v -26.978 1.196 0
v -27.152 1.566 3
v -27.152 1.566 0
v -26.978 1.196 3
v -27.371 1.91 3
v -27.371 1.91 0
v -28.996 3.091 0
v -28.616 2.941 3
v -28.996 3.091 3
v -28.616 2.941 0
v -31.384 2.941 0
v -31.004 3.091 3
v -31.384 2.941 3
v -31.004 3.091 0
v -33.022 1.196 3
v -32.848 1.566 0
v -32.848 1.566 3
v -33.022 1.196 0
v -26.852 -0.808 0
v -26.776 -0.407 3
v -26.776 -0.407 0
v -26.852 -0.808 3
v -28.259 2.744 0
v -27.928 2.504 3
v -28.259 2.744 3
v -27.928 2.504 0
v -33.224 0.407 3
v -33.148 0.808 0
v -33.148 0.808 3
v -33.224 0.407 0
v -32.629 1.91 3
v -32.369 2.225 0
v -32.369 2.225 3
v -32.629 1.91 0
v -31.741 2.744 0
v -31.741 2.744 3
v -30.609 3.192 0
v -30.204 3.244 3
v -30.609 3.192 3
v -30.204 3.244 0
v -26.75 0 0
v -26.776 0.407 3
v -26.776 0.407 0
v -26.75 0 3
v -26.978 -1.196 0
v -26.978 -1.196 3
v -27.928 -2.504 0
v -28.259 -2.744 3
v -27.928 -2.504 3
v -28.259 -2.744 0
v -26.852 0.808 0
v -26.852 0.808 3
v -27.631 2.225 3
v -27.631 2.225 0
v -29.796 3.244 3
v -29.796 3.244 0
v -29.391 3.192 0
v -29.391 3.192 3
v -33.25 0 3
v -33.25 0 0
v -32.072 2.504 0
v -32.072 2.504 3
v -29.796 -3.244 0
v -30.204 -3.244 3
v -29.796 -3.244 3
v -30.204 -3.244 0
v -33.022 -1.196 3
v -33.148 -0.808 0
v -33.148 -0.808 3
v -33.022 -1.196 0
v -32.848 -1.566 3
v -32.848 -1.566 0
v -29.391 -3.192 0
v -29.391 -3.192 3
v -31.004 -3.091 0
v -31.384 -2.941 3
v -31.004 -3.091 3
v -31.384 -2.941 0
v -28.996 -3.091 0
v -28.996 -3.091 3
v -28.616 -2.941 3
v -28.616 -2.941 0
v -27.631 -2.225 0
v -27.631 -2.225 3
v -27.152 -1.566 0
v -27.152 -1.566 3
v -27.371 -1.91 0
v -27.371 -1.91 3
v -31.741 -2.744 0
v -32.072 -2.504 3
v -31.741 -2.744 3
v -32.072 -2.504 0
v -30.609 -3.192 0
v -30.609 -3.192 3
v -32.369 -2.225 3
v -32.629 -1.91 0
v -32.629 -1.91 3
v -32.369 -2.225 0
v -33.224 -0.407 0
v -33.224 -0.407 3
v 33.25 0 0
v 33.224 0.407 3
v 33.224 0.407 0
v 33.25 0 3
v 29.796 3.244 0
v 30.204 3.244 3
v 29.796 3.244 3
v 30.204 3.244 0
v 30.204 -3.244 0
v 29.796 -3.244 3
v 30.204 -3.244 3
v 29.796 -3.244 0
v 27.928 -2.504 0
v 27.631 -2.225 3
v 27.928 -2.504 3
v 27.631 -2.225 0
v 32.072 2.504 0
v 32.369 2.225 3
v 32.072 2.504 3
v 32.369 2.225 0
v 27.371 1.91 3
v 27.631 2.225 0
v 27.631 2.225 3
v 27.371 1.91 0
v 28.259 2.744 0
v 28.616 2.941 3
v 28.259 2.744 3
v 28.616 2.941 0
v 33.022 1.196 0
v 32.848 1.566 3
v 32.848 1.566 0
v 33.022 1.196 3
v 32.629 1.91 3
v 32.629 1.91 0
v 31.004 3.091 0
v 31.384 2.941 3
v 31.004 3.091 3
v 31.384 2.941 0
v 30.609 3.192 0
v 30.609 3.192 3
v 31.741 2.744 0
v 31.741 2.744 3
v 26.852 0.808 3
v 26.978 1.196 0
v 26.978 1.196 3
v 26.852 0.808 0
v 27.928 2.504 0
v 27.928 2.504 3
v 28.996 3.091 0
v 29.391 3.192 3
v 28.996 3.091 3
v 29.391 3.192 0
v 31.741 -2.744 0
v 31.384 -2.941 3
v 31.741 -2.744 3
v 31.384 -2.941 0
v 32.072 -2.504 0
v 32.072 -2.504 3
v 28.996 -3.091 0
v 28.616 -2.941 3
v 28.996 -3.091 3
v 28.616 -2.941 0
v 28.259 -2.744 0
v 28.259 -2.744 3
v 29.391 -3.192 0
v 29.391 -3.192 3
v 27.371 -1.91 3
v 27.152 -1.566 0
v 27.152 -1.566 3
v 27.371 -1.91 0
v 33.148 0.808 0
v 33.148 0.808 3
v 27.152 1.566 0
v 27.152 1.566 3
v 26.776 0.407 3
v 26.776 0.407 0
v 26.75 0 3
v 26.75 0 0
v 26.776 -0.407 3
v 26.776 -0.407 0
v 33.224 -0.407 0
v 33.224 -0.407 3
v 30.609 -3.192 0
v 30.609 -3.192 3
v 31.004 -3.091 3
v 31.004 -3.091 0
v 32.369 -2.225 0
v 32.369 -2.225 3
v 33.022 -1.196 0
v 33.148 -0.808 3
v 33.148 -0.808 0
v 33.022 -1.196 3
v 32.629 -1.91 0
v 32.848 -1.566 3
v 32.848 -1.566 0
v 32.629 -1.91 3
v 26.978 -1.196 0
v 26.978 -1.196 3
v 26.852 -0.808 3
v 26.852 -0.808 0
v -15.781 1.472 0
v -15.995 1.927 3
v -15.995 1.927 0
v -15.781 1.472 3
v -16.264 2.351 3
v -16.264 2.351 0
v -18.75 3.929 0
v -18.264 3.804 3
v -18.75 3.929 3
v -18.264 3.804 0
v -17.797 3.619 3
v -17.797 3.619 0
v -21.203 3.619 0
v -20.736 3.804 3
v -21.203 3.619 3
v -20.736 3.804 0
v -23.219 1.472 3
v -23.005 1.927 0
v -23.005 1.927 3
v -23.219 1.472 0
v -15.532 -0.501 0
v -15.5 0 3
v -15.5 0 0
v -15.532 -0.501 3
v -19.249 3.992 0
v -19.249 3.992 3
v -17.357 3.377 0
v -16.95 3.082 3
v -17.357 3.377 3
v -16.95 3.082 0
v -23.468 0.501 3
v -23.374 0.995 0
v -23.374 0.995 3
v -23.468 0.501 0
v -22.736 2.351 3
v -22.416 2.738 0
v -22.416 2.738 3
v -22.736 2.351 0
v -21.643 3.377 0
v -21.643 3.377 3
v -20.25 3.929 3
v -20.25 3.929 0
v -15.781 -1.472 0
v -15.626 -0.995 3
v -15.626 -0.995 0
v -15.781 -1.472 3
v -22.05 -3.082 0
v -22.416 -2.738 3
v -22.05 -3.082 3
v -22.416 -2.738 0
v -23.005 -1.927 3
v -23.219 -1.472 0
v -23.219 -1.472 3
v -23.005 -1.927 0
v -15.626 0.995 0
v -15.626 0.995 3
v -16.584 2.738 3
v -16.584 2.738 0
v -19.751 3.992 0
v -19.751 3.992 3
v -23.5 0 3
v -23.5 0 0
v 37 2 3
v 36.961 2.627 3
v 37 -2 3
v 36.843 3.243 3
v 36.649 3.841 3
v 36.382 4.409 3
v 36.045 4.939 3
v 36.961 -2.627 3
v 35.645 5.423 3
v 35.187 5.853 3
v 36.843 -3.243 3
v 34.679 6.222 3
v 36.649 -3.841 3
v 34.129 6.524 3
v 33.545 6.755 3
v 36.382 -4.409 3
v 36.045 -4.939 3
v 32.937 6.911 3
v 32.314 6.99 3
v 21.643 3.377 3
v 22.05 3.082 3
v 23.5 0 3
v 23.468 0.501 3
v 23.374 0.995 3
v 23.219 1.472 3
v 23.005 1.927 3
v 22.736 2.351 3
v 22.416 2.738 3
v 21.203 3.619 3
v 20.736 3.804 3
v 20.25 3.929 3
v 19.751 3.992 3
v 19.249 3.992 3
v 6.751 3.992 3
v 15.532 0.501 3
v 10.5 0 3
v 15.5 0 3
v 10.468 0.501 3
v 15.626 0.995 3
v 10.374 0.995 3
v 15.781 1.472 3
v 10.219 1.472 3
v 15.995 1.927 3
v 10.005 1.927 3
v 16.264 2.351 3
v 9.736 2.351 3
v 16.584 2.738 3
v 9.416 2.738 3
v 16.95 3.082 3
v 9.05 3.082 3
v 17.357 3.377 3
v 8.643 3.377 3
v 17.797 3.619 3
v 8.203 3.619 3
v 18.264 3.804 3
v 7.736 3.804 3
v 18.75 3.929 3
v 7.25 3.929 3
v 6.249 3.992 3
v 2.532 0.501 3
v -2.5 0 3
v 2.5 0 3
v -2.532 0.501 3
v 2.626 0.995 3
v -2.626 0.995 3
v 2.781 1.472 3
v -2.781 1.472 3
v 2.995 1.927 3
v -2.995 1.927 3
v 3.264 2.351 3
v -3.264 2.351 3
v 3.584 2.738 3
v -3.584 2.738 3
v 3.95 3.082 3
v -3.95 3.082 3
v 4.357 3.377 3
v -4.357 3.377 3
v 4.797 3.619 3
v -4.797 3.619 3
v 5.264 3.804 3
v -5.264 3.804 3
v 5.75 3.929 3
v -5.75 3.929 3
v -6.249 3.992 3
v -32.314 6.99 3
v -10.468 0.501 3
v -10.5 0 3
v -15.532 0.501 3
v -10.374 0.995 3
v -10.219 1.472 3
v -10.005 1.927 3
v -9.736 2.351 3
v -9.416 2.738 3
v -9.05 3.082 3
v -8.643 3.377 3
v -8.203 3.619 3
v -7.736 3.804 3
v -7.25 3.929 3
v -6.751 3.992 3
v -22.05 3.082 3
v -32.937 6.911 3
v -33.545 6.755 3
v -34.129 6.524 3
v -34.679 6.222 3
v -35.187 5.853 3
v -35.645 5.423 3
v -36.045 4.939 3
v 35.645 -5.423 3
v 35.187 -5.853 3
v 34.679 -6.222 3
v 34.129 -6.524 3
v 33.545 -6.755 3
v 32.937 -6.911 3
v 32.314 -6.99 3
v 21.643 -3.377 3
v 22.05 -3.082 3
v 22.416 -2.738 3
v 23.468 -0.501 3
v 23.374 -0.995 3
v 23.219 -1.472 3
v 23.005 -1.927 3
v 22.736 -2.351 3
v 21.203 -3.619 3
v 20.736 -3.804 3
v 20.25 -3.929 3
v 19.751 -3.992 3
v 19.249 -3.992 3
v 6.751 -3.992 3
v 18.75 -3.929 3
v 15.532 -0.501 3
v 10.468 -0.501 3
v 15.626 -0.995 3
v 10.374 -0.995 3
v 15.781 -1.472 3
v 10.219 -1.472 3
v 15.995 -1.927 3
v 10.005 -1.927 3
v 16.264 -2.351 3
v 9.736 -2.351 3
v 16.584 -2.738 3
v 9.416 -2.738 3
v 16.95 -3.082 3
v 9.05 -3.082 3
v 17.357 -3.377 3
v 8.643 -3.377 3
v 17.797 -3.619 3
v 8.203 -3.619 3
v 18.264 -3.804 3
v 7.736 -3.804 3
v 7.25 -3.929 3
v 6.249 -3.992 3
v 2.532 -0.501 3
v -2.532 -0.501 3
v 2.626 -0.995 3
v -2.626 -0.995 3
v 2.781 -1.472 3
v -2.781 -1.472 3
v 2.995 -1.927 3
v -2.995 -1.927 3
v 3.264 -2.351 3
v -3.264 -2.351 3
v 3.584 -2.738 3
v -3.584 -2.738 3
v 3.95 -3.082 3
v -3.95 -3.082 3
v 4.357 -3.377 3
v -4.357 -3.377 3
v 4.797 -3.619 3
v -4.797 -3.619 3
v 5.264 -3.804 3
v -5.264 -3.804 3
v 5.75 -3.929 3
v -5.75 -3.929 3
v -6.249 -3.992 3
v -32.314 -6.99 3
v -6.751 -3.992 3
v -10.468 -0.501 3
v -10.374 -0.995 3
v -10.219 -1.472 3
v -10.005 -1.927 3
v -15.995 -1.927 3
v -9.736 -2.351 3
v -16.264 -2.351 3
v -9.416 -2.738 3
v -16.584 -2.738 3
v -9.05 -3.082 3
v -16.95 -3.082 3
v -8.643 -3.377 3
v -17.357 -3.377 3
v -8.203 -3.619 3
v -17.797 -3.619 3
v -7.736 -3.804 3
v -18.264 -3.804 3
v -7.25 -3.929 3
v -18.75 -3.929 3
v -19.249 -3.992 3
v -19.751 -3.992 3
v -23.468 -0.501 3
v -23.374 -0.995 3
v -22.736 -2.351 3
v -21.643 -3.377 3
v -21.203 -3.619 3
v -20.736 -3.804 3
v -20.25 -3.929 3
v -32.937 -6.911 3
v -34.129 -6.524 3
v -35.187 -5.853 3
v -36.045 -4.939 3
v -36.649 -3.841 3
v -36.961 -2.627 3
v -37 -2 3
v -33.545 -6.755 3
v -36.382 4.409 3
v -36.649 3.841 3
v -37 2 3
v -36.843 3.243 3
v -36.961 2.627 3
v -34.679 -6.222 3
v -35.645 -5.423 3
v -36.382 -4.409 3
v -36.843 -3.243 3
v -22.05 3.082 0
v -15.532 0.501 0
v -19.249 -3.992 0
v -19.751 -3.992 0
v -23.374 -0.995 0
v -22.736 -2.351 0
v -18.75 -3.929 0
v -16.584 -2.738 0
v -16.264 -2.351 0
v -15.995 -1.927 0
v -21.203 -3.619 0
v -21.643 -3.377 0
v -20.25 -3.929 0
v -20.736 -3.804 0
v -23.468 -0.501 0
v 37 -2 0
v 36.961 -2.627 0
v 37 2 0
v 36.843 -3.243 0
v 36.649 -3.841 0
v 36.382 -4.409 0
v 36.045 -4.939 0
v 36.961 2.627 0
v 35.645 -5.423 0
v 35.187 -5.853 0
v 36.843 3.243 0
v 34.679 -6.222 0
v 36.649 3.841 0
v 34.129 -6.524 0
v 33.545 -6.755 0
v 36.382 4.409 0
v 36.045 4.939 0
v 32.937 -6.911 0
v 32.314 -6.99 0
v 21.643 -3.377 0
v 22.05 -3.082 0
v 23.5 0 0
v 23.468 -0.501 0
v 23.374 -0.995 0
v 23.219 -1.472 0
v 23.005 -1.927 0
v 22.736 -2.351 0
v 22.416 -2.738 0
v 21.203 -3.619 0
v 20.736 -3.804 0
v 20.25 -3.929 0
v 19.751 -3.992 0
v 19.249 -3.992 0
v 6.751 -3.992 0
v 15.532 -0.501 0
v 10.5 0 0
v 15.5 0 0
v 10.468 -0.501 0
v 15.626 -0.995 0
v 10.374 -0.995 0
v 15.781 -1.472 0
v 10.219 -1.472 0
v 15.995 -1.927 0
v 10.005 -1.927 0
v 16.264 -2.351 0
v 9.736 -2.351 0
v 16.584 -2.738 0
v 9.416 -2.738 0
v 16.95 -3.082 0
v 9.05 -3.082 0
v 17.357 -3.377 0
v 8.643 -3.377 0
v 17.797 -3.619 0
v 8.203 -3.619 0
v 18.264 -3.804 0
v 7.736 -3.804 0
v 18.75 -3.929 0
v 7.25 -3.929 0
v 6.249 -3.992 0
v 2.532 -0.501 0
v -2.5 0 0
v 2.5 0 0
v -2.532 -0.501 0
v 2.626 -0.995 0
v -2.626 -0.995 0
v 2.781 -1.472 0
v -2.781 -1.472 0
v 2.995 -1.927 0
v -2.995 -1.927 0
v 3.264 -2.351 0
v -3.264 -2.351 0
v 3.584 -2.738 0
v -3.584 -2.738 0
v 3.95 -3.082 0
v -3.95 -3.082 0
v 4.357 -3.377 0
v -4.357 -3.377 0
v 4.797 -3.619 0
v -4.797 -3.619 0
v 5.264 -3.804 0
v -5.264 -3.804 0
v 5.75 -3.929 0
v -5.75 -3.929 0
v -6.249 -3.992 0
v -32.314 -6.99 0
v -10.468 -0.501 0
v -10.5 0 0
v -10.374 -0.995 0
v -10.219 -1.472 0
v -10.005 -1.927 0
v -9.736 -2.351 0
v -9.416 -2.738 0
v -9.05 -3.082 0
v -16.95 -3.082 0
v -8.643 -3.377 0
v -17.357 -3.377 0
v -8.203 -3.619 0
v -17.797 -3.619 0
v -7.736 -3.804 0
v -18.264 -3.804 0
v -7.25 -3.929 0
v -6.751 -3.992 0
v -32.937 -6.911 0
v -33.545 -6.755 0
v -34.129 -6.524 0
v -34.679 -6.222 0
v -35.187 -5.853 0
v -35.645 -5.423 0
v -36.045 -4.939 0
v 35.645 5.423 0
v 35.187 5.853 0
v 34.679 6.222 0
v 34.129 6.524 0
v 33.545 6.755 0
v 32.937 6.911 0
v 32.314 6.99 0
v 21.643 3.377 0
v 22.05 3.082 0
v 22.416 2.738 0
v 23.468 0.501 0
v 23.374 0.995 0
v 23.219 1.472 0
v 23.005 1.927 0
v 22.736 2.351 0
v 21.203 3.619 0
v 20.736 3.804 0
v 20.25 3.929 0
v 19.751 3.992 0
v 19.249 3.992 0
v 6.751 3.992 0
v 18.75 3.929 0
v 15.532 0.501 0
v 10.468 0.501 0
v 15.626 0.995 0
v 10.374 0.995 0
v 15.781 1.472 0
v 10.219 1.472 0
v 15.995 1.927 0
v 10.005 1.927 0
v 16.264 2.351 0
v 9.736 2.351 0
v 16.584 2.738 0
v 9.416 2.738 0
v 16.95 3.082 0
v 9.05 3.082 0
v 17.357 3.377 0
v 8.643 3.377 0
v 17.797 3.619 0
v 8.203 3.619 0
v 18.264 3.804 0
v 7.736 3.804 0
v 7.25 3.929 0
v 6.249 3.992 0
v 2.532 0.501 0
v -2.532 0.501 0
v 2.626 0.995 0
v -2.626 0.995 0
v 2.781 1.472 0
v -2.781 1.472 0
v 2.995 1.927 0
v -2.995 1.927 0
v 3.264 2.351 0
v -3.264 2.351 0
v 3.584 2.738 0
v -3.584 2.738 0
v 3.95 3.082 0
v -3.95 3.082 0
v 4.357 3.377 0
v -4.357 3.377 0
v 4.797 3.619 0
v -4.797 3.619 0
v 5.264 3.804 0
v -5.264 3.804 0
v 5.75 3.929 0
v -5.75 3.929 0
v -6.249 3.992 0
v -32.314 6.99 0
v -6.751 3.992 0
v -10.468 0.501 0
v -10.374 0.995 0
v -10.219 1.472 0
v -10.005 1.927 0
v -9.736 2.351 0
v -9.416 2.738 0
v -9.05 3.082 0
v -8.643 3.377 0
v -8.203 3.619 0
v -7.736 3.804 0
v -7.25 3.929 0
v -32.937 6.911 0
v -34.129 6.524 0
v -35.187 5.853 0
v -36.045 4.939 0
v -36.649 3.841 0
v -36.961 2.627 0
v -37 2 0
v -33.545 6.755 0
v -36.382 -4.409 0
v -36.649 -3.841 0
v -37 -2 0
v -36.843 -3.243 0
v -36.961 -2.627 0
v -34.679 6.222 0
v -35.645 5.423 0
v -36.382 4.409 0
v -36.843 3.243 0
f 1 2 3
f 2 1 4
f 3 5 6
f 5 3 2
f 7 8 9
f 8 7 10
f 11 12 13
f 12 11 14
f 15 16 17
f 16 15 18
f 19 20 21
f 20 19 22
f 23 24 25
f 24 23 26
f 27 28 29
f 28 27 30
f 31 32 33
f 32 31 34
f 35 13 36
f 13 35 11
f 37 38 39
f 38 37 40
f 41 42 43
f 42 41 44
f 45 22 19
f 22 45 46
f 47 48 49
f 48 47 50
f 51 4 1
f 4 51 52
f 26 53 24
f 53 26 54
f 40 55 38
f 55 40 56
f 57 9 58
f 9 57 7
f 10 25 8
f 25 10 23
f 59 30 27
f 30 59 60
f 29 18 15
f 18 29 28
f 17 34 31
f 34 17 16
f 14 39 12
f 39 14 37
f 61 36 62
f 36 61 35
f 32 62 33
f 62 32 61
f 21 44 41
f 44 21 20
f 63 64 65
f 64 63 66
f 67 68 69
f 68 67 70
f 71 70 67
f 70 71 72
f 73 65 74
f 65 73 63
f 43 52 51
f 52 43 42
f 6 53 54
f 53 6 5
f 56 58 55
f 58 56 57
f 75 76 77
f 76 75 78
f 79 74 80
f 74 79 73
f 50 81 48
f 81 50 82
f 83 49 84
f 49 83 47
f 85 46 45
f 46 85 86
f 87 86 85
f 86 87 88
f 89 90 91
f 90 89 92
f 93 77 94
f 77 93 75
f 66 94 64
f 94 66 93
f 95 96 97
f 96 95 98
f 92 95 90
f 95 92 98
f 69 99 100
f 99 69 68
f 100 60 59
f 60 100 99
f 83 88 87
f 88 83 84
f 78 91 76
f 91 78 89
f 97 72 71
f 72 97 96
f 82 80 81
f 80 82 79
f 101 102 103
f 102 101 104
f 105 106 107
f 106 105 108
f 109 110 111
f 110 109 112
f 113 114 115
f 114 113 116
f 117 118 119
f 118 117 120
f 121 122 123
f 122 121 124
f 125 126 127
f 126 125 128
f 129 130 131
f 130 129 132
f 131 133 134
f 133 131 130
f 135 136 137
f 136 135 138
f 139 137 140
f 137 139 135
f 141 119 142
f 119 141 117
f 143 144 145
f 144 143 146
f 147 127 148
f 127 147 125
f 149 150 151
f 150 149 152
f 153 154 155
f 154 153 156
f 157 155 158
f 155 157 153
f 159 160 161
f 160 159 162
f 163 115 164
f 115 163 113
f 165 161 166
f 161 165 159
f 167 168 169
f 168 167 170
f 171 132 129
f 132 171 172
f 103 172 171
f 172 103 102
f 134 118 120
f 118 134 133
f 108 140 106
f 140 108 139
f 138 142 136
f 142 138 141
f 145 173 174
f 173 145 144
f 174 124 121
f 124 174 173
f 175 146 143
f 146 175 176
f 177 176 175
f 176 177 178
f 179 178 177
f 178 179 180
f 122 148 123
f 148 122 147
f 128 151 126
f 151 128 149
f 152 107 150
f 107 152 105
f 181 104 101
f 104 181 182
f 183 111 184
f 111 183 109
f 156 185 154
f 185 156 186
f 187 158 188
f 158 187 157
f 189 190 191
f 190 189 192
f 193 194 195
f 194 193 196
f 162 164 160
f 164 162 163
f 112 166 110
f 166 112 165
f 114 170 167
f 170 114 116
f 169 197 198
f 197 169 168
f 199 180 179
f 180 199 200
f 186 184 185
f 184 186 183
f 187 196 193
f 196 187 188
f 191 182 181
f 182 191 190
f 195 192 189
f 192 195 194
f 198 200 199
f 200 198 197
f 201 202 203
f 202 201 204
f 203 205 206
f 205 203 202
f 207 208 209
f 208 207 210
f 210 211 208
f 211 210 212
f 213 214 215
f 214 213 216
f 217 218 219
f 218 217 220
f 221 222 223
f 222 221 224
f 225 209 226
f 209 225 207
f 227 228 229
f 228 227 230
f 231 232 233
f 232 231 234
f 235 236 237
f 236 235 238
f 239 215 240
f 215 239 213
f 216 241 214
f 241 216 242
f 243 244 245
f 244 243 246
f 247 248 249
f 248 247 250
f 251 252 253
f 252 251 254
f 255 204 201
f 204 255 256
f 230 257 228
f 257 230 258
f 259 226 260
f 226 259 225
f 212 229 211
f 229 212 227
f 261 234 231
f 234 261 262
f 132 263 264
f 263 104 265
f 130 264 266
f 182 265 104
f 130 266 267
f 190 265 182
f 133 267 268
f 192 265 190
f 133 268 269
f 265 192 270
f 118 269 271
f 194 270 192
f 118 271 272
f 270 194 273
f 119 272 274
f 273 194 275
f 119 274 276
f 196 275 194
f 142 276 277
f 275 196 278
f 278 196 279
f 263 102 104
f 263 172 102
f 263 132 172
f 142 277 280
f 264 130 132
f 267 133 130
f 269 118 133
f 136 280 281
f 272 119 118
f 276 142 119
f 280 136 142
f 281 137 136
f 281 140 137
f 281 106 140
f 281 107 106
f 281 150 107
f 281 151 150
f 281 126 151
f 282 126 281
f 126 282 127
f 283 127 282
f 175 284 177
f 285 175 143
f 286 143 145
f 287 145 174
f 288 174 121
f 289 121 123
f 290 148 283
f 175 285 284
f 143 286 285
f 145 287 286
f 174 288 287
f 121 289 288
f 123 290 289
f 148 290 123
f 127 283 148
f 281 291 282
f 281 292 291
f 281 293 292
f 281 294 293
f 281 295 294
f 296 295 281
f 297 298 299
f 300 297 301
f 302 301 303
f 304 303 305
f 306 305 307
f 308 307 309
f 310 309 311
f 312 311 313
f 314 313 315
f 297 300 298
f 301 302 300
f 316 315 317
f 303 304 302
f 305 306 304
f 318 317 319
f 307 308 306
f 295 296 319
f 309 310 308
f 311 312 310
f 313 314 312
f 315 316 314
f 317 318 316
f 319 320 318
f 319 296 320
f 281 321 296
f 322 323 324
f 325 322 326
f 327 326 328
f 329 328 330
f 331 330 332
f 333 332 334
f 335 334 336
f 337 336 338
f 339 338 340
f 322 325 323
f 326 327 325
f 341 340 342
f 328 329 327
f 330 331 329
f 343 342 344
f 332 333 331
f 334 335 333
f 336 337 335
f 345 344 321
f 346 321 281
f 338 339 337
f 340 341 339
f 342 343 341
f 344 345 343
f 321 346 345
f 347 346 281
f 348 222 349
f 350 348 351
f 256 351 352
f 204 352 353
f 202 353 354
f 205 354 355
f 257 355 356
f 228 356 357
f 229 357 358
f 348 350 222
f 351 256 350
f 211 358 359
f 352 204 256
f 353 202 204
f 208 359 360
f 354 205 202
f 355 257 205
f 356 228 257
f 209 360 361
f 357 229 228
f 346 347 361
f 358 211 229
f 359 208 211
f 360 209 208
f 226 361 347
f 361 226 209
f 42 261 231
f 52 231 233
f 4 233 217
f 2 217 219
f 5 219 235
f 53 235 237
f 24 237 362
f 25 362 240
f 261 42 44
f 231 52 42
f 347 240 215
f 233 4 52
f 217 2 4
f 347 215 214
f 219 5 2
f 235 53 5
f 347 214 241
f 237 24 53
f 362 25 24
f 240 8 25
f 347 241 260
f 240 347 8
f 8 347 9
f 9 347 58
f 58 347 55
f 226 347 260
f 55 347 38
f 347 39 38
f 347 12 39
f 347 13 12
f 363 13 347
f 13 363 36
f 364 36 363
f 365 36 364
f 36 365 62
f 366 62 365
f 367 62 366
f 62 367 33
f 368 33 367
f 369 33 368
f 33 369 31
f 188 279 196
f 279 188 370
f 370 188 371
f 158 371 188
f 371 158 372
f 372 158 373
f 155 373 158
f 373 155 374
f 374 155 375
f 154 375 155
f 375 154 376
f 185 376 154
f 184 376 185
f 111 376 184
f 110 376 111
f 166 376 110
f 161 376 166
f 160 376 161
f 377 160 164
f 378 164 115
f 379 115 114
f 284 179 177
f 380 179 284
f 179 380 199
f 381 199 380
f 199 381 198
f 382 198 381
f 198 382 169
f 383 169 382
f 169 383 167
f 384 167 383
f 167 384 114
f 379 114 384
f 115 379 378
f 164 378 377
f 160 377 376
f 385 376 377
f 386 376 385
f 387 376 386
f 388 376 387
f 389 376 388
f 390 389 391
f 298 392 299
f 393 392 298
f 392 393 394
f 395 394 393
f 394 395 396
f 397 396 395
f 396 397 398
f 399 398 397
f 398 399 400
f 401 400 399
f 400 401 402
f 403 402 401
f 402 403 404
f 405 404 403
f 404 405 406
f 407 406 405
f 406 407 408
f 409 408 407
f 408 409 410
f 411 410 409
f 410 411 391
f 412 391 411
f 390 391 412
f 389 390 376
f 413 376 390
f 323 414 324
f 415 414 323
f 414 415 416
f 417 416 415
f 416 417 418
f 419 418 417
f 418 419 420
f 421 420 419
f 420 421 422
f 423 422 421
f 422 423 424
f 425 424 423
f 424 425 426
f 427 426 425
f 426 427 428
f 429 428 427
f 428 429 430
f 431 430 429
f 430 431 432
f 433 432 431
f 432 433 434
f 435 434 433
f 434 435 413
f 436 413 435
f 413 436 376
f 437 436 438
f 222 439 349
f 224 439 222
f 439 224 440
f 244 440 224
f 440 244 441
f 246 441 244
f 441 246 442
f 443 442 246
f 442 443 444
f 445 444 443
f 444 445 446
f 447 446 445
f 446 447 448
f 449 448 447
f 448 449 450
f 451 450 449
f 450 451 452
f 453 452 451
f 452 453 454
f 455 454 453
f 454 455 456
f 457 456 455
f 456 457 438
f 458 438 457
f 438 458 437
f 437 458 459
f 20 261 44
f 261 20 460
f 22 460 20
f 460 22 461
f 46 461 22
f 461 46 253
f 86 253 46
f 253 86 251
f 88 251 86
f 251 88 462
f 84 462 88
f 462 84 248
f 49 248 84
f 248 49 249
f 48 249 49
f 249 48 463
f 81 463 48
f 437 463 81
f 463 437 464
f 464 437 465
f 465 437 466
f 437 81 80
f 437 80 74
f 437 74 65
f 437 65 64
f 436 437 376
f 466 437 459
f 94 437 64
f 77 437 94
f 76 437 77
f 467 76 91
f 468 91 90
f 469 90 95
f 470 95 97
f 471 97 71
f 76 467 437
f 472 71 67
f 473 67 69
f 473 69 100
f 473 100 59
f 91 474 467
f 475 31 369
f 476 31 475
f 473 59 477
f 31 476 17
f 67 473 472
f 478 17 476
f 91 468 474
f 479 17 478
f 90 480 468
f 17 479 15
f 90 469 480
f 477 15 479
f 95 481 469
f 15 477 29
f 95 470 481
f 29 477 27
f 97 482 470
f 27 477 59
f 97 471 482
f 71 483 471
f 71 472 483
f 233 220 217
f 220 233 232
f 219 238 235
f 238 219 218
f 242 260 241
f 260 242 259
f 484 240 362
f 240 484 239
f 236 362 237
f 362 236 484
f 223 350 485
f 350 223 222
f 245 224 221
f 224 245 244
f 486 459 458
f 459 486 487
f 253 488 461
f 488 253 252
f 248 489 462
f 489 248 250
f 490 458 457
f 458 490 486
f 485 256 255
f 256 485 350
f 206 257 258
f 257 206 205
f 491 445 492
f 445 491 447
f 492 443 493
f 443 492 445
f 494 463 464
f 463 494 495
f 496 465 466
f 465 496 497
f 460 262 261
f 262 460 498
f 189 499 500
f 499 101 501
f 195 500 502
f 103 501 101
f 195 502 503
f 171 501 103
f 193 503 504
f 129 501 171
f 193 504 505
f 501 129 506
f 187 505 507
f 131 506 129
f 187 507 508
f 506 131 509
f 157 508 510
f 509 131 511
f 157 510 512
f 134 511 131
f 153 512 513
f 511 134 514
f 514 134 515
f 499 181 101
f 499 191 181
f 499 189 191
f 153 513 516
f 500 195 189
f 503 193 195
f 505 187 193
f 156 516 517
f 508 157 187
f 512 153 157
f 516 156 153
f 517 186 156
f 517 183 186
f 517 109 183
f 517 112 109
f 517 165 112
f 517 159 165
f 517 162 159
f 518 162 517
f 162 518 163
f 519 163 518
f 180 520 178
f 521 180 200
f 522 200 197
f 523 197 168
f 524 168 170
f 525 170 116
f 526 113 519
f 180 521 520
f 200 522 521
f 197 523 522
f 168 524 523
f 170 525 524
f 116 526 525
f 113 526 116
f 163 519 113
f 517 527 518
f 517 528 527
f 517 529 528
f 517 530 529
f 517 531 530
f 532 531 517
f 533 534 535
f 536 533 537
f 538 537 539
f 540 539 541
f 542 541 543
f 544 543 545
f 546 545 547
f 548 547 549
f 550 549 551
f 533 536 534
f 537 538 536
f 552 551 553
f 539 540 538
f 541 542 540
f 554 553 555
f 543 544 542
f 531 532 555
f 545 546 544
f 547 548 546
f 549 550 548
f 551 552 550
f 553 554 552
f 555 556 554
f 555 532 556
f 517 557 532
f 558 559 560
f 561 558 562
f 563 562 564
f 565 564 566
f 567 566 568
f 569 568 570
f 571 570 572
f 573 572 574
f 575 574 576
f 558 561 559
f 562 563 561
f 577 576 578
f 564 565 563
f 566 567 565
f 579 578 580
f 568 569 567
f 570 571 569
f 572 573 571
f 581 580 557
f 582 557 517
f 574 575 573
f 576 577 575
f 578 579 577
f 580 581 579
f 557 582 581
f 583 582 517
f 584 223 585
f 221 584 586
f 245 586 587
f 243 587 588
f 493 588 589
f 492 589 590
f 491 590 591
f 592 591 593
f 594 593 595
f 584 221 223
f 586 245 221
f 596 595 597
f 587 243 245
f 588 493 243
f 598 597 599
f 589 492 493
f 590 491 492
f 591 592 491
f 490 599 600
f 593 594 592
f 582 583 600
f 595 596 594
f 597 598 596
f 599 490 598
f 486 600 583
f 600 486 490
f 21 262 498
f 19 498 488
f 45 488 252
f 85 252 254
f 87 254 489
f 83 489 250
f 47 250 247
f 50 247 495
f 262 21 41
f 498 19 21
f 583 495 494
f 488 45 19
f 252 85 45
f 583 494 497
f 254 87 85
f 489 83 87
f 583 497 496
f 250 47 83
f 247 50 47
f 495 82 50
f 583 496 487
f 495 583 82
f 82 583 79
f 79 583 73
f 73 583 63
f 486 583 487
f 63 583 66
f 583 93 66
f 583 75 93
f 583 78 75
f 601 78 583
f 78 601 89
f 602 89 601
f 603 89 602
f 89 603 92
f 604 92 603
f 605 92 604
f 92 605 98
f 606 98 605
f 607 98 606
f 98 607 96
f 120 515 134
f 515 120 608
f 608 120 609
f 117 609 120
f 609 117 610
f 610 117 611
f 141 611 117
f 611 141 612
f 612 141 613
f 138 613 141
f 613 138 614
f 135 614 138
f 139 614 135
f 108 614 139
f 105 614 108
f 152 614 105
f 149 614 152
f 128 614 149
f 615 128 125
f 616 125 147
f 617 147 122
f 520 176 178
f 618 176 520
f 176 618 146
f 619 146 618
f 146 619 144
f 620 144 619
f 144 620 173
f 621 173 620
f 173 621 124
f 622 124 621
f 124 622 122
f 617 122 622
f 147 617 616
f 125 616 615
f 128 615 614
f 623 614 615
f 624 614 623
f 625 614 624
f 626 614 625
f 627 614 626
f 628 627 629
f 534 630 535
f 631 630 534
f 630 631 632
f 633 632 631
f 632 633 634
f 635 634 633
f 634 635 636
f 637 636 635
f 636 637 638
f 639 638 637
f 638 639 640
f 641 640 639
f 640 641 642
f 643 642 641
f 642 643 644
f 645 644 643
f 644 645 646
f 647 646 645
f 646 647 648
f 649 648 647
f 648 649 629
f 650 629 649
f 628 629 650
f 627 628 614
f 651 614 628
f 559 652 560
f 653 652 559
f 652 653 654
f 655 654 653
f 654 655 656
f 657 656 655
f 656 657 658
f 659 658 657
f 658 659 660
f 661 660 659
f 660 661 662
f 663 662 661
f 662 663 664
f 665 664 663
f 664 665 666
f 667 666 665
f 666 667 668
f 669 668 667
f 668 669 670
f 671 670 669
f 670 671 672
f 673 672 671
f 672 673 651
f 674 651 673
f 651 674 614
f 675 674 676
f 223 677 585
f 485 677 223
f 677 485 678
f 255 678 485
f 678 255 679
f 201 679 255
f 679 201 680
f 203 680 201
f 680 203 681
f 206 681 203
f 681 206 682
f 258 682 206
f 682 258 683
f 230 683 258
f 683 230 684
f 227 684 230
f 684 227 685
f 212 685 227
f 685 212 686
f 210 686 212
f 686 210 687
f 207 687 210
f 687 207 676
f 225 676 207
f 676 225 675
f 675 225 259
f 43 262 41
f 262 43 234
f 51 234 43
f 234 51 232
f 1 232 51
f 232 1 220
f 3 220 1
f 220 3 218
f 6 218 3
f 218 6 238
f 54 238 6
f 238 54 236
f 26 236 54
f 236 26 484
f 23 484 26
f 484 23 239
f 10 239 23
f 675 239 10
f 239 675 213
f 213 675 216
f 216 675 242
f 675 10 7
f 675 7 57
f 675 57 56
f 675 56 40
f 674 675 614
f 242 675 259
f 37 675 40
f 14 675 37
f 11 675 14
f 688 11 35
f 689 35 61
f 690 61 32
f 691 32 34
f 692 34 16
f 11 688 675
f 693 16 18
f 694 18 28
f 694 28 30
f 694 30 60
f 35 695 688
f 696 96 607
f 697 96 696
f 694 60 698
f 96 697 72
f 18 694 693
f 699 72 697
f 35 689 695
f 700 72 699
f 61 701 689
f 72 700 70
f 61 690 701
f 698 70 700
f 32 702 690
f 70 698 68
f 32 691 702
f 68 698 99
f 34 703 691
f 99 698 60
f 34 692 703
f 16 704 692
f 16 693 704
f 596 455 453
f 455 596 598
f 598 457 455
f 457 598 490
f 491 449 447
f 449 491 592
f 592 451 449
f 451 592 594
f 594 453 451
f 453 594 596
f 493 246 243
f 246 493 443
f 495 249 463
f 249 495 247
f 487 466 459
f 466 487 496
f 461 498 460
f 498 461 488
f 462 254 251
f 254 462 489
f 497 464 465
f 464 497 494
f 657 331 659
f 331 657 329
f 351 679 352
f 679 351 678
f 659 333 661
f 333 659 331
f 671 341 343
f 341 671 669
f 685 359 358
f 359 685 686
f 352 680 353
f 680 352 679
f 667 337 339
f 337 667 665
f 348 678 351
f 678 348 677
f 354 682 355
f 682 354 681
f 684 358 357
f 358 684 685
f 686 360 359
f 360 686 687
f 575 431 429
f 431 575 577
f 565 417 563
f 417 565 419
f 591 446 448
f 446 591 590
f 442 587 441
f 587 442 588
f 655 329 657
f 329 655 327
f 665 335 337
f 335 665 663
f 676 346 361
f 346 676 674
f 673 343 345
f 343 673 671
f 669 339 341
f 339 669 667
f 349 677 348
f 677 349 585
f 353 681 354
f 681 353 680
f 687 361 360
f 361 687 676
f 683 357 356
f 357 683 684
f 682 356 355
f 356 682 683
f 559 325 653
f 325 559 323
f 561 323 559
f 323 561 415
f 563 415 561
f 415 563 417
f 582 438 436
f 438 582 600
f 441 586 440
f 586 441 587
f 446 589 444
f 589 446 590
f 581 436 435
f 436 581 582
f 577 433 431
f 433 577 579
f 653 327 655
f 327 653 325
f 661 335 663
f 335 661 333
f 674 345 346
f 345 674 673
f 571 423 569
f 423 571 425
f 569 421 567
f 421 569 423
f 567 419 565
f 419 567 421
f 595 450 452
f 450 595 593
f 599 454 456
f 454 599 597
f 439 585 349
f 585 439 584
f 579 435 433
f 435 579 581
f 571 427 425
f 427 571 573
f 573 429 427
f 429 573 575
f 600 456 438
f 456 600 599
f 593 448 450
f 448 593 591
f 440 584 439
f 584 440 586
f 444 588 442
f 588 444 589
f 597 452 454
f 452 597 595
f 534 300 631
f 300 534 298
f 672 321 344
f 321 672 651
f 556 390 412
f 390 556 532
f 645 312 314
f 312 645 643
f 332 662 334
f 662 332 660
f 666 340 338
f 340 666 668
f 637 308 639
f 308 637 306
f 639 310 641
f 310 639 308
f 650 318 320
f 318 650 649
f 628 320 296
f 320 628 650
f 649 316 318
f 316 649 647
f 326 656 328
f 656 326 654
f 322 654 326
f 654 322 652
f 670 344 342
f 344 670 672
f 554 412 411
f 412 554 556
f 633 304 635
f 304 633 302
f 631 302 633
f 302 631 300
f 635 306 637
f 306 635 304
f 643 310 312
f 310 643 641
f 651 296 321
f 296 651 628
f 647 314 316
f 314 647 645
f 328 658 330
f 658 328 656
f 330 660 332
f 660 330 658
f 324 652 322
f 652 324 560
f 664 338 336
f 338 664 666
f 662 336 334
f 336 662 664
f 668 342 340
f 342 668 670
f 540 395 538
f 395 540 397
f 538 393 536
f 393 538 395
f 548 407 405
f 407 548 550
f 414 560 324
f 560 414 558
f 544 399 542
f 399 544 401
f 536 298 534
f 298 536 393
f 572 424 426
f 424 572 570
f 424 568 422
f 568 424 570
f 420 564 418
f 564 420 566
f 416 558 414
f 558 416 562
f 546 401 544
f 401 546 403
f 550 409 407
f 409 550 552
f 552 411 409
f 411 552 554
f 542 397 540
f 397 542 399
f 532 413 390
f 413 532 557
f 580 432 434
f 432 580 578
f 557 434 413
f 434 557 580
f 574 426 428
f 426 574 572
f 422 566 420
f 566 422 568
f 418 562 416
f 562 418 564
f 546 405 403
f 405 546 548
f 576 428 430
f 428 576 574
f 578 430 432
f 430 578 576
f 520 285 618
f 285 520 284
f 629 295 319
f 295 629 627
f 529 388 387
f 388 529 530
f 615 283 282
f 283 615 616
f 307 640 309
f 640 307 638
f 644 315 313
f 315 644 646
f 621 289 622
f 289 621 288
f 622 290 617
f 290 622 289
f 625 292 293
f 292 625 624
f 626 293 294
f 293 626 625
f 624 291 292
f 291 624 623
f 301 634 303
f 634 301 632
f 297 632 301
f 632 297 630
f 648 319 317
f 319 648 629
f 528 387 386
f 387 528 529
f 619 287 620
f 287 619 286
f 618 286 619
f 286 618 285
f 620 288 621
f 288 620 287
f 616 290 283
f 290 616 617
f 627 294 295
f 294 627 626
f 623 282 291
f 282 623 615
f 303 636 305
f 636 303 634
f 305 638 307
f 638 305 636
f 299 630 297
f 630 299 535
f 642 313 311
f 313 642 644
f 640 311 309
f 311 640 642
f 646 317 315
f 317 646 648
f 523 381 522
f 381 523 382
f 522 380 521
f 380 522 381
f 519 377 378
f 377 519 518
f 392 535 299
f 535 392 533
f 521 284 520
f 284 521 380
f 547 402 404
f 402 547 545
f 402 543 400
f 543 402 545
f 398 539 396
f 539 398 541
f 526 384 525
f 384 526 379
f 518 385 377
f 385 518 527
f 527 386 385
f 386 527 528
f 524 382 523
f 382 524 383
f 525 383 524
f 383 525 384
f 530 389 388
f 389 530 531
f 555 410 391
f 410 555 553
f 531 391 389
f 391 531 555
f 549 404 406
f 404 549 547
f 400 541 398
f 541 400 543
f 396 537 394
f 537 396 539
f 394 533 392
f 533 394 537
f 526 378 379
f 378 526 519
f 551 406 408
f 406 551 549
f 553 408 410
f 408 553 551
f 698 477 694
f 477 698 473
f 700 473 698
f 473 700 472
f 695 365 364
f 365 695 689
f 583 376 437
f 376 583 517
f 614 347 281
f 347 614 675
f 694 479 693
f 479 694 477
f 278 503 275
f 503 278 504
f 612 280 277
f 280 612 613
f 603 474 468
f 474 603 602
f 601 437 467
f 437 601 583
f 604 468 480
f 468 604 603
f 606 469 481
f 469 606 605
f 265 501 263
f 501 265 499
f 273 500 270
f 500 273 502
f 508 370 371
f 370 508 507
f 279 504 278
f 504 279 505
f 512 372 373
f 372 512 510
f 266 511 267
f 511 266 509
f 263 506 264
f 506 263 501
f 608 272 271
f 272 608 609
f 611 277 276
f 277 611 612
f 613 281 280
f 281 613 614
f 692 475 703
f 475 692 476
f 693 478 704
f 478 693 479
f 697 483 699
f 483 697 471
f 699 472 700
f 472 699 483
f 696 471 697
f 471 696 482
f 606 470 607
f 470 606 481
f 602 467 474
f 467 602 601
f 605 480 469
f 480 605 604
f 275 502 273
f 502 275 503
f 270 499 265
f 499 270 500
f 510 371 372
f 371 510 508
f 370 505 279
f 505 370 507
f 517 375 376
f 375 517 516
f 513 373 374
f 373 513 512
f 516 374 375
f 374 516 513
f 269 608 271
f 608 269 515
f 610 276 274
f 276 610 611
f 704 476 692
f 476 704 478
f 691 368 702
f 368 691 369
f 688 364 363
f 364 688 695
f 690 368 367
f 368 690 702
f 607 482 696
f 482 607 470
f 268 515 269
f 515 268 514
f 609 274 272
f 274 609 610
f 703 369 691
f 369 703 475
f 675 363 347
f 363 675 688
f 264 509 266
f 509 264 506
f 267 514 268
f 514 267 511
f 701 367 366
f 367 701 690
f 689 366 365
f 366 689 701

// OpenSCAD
$fn = 50;


difference() {
	union() {
		hull() {
			translate(v = [-32.0000000000, 2.0000000000, 0]) {
				cylinder(h = 3, r = 5);
			}
			translate(v = [32.0000000000, 2.0000000000, 0]) {
				cylinder(h = 3, r = 5);
			}
			translate(v = [-32.0000000000, -2.0000000000, 0]) {
				cylinder(h = 3, r = 5);
			}
			translate(v = [32.0000000000, -2.0000000000, 0]) {
				cylinder(h = 3, r = 5);
			}
		}
	}
	union() {
		#translate(v = [-30.0000000000, 0.0000000000, 0]) {
			cylinder(h = 3, r = 3.2500000000);
		}
		#translate(v = [30.0000000000, 0.0000000000, 0]) {
			cylinder(h = 3, r = 3.2500000000);
		}
		#translate(v = [-30.0000000000, 0.0000000000, -100.0000000000]) {
			cylinder(h = 200, r = 3.2500000000);
		}
		#translate(v = [-30.0000000000, 0.0000000000, -100.0000000000]) {
			cylinder(h = 200, r = 3.2500000000);
		}
		#translate(v = [30.0000000000, 0.0000000000, -100.0000000000]) {
			cylinder(h = 200, r = 3.2500000000);
		}
		#translate(v = [30.0000000000, 0.0000000000, -100.0000000000]) {
			cylinder(h = 200, r = 3.2500000000);
		}
		#translate(v = [-30.0000000000, 0.0000000000, 0]) {
			cylinder(h = 3, r = 1.8000000000);
		}
		#translate(v = [30.0000000000, 0.0000000000, 0]) {
			cylinder(h = 3, r = 1.8000000000);
		}
		#translate(v = [-30.0000000000, 0.0000000000, 0]) {
			cylinder(h = 3, r = 1.8000000000);
		}
		#translate(v = [30.0000000000, 0.0000000000, 0]) {
			cylinder(h = 3, r = 1.8000000000);
		}
		#translate(v = [-30.0000000000, 0.0000000000, 0]) {
			cylinder(h = 3, r = 1.8000000000);
		}
		#translate(v = [30.0000000000, 0.0000000000, 0]) {
			cylinder(h = 3, r = 1.8000000000);
		}
		#translate(v = [-19.5000000000, 0, 0]) {
			cylinder(h = 3, r = 4.0000000000);
		}
		#translate(v = [-6.5000000000, 0, 0]) {
			cylinder(h = 3, r = 4.0000000000);
		}
		#translate(v = [6.5000000000, 0, 0]) {
			cylinder(h = 3, r = 4.0000000000);
		}
		#translate(v = [19.5000000000, 0, 0]) {
			cylinder(h = 3, r = 4.0000000000);
		}
	}
}
